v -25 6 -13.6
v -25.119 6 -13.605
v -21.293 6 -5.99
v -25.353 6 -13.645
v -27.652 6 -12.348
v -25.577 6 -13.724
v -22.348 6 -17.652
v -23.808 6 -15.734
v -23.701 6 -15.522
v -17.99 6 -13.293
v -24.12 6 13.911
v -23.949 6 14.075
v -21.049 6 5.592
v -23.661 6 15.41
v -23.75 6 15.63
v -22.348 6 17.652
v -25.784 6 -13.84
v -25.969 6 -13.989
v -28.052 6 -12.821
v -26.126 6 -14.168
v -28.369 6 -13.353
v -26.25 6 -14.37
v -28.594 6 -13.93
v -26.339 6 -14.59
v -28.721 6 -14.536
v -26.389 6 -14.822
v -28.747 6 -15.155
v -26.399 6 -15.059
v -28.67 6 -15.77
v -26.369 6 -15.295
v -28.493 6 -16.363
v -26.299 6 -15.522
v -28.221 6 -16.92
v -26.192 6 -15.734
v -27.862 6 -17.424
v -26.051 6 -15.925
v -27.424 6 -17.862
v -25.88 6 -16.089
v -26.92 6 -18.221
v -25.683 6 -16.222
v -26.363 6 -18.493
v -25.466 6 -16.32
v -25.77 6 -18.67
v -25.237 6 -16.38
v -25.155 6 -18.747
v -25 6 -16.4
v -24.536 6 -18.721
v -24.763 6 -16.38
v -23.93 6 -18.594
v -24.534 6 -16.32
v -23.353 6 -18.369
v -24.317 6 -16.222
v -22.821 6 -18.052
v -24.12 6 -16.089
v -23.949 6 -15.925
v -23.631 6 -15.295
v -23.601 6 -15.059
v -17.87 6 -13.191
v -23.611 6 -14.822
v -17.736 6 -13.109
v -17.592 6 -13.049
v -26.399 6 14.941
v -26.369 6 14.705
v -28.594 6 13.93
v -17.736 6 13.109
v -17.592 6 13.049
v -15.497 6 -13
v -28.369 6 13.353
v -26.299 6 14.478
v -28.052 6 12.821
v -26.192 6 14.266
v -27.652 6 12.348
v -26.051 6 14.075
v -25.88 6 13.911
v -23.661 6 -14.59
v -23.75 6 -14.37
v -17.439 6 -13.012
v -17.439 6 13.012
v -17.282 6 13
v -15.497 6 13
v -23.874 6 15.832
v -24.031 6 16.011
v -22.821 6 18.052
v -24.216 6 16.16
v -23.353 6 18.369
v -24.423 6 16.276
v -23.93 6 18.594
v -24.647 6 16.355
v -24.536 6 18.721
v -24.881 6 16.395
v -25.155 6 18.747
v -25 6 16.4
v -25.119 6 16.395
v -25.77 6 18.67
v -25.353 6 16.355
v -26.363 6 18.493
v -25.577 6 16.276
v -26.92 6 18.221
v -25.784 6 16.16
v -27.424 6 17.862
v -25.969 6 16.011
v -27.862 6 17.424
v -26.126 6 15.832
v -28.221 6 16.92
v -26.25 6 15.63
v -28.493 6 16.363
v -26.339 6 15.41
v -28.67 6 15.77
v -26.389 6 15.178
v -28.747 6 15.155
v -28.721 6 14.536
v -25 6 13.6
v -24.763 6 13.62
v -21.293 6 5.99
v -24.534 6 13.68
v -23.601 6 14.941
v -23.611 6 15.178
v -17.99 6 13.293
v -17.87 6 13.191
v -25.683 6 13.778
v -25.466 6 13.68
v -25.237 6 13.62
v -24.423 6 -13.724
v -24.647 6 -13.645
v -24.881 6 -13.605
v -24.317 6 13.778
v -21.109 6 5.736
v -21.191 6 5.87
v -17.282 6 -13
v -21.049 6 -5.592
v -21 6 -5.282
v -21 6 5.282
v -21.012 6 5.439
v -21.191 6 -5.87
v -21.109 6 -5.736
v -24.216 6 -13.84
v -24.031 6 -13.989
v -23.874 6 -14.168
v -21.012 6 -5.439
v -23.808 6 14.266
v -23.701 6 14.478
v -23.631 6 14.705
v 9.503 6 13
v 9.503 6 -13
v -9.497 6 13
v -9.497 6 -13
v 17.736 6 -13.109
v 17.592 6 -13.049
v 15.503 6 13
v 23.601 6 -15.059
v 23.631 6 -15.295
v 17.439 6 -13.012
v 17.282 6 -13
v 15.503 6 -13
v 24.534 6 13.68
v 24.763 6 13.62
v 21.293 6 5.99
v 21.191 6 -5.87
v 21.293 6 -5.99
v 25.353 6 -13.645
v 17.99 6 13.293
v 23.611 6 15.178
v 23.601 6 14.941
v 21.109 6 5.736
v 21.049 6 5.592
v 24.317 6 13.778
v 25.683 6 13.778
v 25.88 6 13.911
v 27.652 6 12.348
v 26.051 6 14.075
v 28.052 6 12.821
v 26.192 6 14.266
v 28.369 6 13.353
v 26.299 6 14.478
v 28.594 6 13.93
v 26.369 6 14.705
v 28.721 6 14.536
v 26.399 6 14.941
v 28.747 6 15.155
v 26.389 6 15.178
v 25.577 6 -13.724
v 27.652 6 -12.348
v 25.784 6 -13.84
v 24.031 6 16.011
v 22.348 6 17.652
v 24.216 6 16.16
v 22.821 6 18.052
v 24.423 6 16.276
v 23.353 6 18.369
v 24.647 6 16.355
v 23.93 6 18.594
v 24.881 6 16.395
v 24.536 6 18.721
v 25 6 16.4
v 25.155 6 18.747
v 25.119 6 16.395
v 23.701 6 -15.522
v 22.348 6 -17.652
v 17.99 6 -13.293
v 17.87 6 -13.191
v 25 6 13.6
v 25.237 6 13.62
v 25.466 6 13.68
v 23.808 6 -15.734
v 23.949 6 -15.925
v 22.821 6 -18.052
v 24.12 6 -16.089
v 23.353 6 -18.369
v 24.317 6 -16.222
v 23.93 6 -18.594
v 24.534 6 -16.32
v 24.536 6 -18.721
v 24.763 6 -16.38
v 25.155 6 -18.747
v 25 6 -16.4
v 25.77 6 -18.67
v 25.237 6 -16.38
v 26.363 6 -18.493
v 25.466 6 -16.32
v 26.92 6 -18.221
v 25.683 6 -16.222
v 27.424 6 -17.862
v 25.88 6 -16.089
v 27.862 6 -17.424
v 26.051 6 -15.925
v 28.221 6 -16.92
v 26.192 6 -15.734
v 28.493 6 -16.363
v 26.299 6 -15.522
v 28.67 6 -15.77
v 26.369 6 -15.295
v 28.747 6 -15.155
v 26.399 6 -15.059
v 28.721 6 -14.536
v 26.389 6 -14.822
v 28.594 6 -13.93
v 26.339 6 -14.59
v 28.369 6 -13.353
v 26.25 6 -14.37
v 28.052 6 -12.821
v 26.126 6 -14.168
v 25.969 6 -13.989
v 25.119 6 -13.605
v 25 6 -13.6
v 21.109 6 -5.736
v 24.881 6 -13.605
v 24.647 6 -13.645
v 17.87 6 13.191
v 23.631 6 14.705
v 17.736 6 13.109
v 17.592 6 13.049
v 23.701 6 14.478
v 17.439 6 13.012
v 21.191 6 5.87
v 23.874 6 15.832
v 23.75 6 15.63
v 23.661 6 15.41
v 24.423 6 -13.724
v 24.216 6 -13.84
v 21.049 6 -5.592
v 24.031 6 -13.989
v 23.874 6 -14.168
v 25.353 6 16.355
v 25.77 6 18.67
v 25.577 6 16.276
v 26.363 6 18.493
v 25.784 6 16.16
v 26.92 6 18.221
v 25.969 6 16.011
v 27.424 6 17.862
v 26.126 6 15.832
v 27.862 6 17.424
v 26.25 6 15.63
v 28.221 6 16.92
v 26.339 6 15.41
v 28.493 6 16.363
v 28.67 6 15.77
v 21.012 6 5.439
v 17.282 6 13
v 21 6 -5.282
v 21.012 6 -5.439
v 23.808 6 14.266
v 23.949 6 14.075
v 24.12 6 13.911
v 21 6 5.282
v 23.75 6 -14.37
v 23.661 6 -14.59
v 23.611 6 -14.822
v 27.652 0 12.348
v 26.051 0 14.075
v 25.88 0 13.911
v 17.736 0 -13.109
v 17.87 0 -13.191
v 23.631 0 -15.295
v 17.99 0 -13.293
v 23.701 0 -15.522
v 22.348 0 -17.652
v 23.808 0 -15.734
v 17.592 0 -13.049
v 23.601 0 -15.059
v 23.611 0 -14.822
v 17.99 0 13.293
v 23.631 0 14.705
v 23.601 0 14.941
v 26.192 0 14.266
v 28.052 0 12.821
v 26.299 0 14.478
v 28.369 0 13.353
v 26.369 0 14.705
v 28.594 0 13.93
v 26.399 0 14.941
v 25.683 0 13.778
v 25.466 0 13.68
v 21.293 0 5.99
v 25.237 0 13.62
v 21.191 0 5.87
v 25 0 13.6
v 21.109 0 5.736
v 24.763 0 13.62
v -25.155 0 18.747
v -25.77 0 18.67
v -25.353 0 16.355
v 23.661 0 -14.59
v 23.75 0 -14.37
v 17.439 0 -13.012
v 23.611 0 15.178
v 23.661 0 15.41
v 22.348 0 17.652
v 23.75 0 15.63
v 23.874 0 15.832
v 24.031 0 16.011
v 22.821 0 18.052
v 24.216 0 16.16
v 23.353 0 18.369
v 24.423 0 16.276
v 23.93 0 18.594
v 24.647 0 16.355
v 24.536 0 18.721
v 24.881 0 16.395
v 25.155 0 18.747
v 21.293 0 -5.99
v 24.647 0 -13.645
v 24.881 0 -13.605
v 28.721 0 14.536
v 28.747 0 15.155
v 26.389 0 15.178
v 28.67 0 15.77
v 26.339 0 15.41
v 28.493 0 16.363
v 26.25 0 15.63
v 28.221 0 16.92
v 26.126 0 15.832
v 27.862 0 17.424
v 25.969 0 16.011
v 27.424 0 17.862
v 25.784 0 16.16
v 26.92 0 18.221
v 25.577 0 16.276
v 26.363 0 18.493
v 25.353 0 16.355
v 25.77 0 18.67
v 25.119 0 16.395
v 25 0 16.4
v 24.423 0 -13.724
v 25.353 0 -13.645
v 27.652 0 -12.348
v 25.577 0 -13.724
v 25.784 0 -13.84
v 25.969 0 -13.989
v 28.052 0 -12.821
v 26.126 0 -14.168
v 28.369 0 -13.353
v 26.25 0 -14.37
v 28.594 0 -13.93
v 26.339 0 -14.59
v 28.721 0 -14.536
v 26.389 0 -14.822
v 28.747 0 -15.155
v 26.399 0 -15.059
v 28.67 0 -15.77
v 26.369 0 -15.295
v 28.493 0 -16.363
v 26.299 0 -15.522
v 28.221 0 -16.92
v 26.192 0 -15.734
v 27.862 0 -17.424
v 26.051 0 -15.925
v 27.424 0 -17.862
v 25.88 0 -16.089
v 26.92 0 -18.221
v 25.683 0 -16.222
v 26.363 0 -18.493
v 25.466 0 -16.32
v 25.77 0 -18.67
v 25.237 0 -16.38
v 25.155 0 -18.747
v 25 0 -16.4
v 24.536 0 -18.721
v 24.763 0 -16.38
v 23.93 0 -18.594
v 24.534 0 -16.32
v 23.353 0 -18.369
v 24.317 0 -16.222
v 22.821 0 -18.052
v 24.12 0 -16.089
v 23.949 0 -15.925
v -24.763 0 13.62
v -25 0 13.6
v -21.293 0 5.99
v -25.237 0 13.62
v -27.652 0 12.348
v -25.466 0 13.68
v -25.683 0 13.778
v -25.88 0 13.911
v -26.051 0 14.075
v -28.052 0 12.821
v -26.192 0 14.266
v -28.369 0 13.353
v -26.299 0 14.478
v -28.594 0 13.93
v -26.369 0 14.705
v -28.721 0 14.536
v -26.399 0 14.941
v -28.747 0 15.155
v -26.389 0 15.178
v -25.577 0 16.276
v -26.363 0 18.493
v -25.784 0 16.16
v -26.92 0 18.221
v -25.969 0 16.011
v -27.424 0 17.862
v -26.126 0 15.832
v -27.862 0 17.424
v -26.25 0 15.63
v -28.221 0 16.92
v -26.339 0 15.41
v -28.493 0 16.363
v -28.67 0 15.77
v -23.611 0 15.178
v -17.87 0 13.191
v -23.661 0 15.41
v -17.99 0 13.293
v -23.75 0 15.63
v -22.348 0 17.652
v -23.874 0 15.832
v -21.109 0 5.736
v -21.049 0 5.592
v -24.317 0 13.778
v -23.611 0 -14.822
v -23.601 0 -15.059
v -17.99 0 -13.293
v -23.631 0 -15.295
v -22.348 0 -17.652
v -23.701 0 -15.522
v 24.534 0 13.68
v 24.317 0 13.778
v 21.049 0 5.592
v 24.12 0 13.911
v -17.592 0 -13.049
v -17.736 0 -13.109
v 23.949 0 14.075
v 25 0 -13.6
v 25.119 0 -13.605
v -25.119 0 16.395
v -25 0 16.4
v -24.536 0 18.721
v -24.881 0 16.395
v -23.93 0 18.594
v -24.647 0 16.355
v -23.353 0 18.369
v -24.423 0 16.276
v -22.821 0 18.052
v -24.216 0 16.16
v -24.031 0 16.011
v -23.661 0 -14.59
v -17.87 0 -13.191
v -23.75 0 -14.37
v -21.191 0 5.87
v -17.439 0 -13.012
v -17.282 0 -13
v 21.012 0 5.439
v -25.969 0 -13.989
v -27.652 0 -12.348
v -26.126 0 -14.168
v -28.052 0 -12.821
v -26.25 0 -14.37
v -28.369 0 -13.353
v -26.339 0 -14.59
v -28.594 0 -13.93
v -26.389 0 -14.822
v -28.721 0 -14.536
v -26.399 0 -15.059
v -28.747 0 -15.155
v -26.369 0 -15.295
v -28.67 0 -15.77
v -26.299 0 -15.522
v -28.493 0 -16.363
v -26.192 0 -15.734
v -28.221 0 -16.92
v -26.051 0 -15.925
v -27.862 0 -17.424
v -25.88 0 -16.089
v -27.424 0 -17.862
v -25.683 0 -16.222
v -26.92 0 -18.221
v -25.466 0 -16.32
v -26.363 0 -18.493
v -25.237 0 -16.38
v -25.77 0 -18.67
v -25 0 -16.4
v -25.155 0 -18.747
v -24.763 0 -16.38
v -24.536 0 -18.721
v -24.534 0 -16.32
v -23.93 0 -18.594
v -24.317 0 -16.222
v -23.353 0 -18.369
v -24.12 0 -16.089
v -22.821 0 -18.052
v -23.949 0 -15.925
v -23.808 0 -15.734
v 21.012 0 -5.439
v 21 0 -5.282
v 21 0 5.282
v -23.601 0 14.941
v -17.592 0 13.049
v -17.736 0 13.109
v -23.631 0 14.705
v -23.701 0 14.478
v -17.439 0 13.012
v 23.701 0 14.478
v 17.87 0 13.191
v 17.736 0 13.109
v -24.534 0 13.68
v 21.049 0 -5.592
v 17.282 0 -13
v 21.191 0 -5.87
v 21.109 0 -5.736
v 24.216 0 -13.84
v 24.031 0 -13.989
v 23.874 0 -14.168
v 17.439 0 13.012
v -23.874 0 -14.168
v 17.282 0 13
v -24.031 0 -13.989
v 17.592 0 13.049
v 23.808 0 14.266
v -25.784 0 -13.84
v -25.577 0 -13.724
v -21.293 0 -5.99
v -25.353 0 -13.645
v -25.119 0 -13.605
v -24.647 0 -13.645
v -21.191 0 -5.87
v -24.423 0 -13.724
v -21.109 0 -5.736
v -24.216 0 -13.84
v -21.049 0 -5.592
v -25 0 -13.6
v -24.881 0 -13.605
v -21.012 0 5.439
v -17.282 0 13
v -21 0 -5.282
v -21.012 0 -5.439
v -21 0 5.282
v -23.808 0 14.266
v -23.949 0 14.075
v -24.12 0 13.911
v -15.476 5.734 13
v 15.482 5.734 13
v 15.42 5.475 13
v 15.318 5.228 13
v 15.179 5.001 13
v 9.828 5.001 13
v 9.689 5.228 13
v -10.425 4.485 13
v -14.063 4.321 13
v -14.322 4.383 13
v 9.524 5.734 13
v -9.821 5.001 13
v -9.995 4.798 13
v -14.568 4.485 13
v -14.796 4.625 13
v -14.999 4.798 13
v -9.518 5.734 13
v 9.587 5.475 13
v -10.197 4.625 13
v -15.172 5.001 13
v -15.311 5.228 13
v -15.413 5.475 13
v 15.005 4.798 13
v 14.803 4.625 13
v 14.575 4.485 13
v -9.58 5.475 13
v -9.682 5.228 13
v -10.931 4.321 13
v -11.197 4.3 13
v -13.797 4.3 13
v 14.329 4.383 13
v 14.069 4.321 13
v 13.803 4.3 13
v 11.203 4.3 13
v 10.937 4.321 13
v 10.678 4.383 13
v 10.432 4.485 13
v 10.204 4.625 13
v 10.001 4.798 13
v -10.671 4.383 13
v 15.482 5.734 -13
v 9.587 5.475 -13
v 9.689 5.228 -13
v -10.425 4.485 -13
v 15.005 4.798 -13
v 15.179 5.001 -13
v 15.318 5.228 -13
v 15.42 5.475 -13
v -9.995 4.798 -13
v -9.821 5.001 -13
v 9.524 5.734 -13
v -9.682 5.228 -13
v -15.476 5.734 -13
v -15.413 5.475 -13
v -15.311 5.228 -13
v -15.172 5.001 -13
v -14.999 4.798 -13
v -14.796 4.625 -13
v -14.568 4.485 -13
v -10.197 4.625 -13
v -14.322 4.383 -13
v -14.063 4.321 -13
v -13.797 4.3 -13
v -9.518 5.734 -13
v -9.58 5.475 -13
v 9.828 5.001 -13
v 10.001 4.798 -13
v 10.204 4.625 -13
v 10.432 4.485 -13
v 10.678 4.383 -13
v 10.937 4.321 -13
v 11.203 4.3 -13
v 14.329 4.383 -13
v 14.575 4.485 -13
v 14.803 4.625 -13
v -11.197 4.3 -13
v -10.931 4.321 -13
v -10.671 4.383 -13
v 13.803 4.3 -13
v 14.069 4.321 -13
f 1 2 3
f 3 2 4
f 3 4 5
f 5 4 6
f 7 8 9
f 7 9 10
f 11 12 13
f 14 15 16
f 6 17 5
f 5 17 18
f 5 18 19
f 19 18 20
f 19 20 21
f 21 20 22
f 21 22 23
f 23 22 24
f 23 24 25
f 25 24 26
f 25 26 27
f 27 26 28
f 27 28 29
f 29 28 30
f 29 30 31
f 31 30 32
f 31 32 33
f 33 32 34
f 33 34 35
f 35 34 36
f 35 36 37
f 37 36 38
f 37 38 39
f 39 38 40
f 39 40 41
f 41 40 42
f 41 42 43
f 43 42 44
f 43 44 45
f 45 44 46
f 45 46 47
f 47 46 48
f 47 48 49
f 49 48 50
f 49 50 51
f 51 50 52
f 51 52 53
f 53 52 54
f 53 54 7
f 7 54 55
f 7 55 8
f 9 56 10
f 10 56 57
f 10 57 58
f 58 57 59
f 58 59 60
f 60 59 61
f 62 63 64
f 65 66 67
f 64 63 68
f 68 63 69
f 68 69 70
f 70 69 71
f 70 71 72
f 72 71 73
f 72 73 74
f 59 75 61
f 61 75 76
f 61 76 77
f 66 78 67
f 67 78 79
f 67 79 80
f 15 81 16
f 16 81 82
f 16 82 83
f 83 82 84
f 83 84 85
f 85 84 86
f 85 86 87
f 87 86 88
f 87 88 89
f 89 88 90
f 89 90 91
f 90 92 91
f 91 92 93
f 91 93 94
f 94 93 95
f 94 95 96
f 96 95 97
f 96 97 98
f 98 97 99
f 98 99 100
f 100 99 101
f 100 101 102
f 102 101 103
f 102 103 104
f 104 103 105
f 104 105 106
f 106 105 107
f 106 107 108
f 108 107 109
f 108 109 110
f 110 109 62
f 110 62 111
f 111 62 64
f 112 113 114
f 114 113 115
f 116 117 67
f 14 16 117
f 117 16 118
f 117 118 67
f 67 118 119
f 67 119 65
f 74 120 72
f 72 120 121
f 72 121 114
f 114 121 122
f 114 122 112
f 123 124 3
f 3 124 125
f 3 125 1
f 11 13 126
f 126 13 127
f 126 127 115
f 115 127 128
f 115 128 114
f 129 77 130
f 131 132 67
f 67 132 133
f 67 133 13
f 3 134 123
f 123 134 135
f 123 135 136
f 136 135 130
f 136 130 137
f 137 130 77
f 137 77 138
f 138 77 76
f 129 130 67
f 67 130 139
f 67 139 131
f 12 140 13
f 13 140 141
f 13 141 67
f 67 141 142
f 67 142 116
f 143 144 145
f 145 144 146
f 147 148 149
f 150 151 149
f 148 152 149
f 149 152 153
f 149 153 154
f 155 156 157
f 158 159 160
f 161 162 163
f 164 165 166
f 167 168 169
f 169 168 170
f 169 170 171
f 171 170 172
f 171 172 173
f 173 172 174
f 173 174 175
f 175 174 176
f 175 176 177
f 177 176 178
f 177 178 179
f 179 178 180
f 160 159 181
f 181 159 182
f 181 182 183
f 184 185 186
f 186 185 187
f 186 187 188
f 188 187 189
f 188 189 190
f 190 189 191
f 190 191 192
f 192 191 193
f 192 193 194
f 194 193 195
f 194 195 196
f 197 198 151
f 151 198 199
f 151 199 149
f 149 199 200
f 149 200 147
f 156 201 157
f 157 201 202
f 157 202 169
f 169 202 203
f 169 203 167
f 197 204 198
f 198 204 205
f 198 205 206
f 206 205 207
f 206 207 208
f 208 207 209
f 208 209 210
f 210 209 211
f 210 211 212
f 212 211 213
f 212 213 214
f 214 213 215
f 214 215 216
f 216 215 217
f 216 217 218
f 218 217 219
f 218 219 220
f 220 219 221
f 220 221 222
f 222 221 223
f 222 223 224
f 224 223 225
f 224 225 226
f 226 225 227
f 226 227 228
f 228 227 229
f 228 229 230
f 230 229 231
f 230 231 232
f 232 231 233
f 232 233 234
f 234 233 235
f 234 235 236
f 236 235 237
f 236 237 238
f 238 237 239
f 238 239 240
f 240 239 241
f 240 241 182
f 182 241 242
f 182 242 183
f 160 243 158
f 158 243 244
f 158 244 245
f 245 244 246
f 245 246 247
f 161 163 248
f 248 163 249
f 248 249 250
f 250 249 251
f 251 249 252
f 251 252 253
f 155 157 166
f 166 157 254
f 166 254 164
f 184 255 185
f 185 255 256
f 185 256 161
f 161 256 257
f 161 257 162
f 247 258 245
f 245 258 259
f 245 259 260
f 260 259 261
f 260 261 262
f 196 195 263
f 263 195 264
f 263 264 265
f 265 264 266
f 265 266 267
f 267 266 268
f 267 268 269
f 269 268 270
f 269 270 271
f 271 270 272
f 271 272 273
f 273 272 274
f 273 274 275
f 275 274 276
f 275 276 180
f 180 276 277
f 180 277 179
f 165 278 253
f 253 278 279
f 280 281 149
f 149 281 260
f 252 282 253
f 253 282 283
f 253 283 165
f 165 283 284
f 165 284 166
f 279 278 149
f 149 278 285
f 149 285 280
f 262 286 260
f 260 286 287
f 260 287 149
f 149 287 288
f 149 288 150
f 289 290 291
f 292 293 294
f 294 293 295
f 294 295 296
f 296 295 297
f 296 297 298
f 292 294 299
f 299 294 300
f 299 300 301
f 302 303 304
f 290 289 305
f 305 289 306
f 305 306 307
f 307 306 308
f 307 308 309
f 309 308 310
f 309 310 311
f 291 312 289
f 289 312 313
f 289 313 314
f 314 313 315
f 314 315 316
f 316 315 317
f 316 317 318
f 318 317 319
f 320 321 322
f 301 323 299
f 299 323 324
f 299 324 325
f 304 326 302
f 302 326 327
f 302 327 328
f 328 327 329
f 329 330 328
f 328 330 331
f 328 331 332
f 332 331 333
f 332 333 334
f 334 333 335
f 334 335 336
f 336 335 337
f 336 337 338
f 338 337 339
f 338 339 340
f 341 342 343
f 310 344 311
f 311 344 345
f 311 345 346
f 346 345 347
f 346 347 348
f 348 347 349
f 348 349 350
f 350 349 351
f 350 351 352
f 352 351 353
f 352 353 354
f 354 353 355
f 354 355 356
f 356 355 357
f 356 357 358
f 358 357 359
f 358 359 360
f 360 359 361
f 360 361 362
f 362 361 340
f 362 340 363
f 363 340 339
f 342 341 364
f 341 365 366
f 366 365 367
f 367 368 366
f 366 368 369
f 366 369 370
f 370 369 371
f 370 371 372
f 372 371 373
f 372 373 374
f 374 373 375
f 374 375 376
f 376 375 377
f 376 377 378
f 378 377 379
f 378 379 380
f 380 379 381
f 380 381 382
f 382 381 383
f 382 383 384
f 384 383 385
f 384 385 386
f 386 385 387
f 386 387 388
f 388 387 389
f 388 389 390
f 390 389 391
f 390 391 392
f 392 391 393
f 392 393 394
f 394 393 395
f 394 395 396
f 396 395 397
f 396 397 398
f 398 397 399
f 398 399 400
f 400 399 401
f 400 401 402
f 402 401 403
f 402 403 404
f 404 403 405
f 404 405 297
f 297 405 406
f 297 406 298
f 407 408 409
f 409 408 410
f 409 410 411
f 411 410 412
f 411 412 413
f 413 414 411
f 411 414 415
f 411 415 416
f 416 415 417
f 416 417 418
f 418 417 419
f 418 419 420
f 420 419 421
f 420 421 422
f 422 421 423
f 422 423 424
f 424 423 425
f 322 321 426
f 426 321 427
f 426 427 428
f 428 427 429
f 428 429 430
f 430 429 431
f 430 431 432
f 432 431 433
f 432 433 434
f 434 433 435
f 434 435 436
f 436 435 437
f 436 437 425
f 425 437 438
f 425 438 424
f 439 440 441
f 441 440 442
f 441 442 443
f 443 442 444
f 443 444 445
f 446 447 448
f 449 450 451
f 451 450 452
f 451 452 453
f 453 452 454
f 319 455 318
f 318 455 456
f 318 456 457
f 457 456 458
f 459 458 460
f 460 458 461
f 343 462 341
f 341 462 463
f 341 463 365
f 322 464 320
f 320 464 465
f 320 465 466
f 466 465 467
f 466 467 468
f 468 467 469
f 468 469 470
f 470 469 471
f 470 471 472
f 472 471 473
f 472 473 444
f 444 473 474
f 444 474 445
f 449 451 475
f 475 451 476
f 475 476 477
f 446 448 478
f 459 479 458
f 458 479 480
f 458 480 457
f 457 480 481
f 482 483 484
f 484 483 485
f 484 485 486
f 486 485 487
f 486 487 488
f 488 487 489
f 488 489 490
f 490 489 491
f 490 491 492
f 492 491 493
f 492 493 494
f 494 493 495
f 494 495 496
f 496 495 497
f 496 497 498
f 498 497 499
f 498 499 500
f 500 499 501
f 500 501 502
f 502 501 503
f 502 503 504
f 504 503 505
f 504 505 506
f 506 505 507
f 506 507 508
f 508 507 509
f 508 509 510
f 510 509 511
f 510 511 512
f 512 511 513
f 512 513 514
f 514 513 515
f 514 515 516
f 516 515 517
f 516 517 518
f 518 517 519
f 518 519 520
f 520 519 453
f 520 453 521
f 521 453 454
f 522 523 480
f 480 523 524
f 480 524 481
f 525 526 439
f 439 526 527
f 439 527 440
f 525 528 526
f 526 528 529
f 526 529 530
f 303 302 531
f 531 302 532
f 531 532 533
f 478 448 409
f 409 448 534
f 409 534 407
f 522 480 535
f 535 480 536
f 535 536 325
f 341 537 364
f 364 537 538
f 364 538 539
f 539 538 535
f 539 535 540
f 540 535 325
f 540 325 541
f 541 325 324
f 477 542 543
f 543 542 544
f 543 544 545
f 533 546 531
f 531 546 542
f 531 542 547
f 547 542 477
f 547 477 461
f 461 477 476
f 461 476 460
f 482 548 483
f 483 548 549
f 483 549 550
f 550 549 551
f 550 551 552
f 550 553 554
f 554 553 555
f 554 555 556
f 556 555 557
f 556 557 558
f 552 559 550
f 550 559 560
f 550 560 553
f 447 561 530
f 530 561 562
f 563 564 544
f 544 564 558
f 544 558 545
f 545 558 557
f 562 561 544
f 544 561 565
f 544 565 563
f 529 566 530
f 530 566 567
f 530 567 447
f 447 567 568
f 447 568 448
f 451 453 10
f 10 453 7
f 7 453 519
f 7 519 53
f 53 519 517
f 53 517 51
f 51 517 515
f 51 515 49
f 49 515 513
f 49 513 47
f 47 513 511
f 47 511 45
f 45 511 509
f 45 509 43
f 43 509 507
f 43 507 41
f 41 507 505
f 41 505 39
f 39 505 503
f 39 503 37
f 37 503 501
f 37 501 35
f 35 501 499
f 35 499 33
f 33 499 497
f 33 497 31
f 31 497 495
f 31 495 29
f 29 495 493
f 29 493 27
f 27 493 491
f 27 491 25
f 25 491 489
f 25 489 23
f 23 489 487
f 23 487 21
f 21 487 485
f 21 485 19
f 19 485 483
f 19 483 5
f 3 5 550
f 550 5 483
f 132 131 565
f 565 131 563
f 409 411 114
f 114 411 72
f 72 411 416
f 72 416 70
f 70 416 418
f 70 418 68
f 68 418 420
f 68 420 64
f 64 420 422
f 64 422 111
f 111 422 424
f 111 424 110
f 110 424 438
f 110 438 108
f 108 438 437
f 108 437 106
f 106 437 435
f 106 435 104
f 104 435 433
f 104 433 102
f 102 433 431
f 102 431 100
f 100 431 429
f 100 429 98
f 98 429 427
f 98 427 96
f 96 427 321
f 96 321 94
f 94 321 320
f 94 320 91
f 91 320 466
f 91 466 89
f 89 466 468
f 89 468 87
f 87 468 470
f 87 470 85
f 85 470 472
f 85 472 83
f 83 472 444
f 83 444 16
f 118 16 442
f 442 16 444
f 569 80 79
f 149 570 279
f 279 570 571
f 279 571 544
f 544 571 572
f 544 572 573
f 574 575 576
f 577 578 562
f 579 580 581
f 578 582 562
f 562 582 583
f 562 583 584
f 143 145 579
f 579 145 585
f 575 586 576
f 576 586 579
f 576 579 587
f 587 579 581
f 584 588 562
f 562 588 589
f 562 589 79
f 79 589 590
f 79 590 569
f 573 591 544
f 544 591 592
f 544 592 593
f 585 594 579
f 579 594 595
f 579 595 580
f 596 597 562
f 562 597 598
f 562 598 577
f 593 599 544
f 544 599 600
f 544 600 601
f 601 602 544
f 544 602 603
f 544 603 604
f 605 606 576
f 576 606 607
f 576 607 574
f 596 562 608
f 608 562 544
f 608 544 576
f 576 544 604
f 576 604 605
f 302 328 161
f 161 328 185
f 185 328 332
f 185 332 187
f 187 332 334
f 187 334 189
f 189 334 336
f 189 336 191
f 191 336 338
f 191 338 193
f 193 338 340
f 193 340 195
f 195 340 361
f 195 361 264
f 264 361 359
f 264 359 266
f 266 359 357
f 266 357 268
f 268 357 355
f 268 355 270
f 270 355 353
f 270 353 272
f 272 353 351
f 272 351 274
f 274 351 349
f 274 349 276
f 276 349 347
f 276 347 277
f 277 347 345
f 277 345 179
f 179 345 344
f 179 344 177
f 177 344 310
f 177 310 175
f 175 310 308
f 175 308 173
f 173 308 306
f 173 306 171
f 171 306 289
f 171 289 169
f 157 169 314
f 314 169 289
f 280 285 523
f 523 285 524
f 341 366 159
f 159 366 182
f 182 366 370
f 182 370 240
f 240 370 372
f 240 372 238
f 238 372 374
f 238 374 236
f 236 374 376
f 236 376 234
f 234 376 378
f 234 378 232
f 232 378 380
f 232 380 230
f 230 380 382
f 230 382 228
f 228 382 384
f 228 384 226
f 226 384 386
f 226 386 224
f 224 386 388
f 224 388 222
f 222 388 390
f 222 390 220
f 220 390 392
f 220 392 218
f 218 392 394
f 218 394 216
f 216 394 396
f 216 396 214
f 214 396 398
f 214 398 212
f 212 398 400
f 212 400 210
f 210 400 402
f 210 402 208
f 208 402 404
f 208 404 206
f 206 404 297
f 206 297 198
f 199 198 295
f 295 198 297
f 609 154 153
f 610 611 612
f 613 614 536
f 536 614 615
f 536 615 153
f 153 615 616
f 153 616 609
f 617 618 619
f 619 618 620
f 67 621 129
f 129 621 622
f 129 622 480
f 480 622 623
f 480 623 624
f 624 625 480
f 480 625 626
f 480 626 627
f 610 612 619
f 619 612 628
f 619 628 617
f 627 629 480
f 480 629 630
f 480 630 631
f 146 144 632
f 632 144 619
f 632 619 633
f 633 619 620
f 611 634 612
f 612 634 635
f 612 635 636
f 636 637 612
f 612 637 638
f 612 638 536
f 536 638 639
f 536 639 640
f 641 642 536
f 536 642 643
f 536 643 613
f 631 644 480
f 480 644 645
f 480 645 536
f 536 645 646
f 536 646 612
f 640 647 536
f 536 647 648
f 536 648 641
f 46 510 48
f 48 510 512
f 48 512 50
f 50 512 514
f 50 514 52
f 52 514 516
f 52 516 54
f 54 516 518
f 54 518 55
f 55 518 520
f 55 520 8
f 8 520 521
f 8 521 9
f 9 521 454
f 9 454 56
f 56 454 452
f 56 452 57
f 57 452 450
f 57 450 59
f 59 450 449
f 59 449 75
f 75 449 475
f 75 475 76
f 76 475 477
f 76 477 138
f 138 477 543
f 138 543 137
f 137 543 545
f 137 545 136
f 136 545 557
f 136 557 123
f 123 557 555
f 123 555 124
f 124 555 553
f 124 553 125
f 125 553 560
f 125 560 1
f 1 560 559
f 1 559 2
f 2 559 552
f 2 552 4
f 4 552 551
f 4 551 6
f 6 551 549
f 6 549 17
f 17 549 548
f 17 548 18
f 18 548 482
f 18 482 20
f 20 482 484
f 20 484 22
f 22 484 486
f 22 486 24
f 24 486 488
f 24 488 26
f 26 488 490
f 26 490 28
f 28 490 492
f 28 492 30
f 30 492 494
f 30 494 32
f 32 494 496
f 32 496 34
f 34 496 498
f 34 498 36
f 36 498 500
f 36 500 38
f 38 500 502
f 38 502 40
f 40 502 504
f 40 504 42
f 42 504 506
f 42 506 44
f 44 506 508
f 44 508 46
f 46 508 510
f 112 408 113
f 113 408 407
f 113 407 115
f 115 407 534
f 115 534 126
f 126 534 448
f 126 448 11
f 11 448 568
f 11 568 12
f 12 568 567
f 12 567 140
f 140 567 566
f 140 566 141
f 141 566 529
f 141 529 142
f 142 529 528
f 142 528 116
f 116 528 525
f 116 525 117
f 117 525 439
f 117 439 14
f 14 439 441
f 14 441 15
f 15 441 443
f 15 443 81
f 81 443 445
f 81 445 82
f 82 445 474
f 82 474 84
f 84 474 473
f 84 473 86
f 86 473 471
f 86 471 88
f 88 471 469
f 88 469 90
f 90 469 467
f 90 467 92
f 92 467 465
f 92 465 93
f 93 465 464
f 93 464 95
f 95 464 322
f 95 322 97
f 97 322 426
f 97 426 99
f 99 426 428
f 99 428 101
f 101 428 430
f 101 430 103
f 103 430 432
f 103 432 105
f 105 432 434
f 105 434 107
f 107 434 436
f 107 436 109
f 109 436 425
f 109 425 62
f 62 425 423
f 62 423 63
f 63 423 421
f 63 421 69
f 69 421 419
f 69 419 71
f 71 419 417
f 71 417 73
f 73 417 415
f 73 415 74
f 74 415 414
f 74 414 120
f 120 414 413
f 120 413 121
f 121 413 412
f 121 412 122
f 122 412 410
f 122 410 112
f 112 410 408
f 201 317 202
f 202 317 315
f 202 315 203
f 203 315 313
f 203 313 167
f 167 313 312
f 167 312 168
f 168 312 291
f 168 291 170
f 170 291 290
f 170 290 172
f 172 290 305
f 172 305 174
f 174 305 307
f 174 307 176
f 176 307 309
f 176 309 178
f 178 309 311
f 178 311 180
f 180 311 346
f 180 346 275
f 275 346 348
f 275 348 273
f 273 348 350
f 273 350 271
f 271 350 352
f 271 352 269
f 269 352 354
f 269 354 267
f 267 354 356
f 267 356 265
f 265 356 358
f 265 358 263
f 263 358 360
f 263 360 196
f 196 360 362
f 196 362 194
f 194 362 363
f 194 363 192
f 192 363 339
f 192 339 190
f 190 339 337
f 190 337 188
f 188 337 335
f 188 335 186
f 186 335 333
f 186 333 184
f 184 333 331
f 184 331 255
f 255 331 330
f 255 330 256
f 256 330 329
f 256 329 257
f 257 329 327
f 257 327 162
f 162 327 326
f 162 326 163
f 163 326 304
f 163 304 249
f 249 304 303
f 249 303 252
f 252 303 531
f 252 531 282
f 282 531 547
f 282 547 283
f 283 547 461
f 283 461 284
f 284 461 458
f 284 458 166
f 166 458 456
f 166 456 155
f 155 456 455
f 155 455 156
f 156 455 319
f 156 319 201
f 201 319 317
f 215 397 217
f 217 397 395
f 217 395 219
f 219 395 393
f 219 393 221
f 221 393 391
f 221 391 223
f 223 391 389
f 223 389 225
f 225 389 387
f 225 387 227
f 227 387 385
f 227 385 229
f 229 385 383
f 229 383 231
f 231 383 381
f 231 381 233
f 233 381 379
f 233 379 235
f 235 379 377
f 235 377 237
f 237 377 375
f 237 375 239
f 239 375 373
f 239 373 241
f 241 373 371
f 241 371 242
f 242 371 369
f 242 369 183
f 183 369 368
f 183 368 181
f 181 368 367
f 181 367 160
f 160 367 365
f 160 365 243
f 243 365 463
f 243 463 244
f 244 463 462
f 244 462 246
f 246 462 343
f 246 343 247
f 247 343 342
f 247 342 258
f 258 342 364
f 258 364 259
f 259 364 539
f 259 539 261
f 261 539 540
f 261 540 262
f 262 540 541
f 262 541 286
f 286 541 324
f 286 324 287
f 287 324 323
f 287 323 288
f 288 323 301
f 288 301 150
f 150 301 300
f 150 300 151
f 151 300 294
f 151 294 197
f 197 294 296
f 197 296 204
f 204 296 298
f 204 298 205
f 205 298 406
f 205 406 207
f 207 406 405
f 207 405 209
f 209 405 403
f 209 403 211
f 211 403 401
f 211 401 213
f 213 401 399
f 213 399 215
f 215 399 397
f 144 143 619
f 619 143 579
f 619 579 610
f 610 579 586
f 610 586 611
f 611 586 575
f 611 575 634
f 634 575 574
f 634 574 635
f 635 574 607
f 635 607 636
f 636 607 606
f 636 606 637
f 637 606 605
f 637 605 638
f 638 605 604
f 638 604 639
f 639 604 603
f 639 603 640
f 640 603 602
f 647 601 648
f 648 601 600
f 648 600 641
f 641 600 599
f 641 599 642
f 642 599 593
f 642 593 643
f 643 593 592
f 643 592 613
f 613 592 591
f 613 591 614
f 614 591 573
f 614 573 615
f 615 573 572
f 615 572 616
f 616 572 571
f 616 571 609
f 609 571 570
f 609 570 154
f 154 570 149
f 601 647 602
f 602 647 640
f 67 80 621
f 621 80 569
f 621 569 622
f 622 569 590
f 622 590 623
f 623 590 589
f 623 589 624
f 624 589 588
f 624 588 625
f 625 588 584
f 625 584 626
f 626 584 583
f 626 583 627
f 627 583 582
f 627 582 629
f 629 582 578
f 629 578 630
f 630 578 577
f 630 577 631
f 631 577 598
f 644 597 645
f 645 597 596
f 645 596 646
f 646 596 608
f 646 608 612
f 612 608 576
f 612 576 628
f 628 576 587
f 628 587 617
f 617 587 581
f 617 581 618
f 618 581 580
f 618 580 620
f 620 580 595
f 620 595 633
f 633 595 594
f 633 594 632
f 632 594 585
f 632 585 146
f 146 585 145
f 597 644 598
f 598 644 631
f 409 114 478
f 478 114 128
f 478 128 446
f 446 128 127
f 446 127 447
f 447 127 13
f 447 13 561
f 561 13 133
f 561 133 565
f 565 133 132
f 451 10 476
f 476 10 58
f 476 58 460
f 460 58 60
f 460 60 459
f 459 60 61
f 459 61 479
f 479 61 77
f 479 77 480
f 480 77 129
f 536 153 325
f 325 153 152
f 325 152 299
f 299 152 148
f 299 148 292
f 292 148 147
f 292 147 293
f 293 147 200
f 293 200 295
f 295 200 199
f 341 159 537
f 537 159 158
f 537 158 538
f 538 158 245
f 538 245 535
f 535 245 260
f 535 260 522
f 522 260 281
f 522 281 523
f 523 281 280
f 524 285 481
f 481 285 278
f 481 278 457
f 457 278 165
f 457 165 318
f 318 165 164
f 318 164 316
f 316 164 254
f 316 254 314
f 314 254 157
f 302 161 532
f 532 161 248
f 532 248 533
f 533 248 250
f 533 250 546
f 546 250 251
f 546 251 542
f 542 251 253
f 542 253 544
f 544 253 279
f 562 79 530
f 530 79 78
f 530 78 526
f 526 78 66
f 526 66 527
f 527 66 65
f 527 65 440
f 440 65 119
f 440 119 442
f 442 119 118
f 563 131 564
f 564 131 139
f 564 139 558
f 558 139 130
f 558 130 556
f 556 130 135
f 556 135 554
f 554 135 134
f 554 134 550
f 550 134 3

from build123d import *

# Parameters (mm, degrees)
SKETCH1_R                 = 1.4
BASE_DEPTH                = 6
WIRE_GROOVES_DEPTH        = 44.250722537
F_1MM_SIDE_EDGE_FILLETS_R = 1


with BuildPart() as part:
    # Sketch1 → Base (new body)
    with BuildSketch(Plane(origin=(0, 0, 0), x_dir=(1, 0, 0), z_dir=(0, 1, 0))):
        with BuildLine():
            Line((-17.696699141, 13), (17.696699141, 13))
            Line((17.696699141, 13), (22.348349571, 17.651650429))
            ThreePointArc((22.348349571, 17.651650429), (27.651650429, 17.651650429), (27.651650429, 12.348349571))
            Line((27.651650429, 12.348349571), (21, 5.696699141))
            Line((21, 5.696699141), (21, -5.696699141))
            Line((21, -5.696699141), (27.651650429, -12.348349571))
            ThreePointArc((27.651650429, -12.348349571), (27.651650429, -17.651650429), (22.348349571, -17.651650429))
            Line((22.348349571, -17.651650429), (17.696699141, -13))
            Line((17.696699141, -13), (-17.696699141, -13))
            Line((-17.696699141, -13), (-22.348349571, -17.651650429))
            ThreePointArc((-22.348349571, -17.651650429), (-27.651650429, -17.651650429), (-27.651650429, -12.348349571))
            Line((-27.651650429, -12.348349571), (-21, -5.696699141))
            Line((-21, -5.696699141), (-21, 5.696699141))
            Line((-21, 5.696699141), (-27.651650429, 12.348349571))
            ThreePointArc((-27.651650429, 12.348349571), (-27.651650429, 17.651650429), (-22.348349571, 17.651650429))
            Line((-22.348349571, 17.651650429), (-17.696699141, 13))
        make_face()
        with Locations((-25, 15)):
            Circle(SKETCH1_R, mode=Mode.SUBTRACT)
        with Locations((-25, -15)):
            Circle(SKETCH1_R, mode=Mode.SUBTRACT)
        with Locations((25, -15)):
            Circle(SKETCH1_R, mode=Mode.SUBTRACT)
        with Locations((25, 15)):
            Circle(SKETCH1_R, mode=Mode.SUBTRACT)
    extrude(amount=BASE_DEPTH)

    # Sketch2 → Wire Grooves (cut, through all)
    with BuildSketch(Plane.XY.offset(13)):
        with BuildLine():
            Line((-15.496699141, 6), (-9.496699141, 6))
            ThreePointArc((-9.496699141, 6), (-9.994617613, 4.797918472), (-11.196699141, 4.3))
            Line((-11.196699141, 4.3), (-13.796699141, 4.3))
            ThreePointArc((-13.796699141, 4.3), (-14.998780669, 4.797918472), (-15.496699141, 6))
        make_face()
        with BuildLine():
            Line((9.503300859, 6), (15.503300859, 6))
            ThreePointArc((15.503300859, 6), (15.005382387, 4.797918472), (13.803300859, 4.3))
            Line((13.803300859, 4.3), (11.203300859, 4.3))
            ThreePointArc((11.203300859, 4.3), (10.001219331, 4.797918472), (9.503300859, 6))
        make_face()
    extrude(amount=-WIRE_GROOVES_DEPTH, mode=Mode.SUBTRACT)

    # 1mm Side Edge Fillets
    f_1mm_side_edge_fillets_edges = [part.edges().sort_by_distance(p)[0] for p in [
        (-21, 3, 5.696699141),
        (-17.696699141, 3, -13),
        (17.696699141, 3, -13),
        (21, 3, -5.696699141),
        (21, 3, 5.696699141),
        (17.696699141, 3, 13),
        (-17.696699141, 3, 13),
        (-21, 3, -5.696699141),
    ]]
    fillet(f_1mm_side_edge_fillets_edges, radius=F_1MM_SIDE_EDGE_FILLETS_R)


solid = part.part
